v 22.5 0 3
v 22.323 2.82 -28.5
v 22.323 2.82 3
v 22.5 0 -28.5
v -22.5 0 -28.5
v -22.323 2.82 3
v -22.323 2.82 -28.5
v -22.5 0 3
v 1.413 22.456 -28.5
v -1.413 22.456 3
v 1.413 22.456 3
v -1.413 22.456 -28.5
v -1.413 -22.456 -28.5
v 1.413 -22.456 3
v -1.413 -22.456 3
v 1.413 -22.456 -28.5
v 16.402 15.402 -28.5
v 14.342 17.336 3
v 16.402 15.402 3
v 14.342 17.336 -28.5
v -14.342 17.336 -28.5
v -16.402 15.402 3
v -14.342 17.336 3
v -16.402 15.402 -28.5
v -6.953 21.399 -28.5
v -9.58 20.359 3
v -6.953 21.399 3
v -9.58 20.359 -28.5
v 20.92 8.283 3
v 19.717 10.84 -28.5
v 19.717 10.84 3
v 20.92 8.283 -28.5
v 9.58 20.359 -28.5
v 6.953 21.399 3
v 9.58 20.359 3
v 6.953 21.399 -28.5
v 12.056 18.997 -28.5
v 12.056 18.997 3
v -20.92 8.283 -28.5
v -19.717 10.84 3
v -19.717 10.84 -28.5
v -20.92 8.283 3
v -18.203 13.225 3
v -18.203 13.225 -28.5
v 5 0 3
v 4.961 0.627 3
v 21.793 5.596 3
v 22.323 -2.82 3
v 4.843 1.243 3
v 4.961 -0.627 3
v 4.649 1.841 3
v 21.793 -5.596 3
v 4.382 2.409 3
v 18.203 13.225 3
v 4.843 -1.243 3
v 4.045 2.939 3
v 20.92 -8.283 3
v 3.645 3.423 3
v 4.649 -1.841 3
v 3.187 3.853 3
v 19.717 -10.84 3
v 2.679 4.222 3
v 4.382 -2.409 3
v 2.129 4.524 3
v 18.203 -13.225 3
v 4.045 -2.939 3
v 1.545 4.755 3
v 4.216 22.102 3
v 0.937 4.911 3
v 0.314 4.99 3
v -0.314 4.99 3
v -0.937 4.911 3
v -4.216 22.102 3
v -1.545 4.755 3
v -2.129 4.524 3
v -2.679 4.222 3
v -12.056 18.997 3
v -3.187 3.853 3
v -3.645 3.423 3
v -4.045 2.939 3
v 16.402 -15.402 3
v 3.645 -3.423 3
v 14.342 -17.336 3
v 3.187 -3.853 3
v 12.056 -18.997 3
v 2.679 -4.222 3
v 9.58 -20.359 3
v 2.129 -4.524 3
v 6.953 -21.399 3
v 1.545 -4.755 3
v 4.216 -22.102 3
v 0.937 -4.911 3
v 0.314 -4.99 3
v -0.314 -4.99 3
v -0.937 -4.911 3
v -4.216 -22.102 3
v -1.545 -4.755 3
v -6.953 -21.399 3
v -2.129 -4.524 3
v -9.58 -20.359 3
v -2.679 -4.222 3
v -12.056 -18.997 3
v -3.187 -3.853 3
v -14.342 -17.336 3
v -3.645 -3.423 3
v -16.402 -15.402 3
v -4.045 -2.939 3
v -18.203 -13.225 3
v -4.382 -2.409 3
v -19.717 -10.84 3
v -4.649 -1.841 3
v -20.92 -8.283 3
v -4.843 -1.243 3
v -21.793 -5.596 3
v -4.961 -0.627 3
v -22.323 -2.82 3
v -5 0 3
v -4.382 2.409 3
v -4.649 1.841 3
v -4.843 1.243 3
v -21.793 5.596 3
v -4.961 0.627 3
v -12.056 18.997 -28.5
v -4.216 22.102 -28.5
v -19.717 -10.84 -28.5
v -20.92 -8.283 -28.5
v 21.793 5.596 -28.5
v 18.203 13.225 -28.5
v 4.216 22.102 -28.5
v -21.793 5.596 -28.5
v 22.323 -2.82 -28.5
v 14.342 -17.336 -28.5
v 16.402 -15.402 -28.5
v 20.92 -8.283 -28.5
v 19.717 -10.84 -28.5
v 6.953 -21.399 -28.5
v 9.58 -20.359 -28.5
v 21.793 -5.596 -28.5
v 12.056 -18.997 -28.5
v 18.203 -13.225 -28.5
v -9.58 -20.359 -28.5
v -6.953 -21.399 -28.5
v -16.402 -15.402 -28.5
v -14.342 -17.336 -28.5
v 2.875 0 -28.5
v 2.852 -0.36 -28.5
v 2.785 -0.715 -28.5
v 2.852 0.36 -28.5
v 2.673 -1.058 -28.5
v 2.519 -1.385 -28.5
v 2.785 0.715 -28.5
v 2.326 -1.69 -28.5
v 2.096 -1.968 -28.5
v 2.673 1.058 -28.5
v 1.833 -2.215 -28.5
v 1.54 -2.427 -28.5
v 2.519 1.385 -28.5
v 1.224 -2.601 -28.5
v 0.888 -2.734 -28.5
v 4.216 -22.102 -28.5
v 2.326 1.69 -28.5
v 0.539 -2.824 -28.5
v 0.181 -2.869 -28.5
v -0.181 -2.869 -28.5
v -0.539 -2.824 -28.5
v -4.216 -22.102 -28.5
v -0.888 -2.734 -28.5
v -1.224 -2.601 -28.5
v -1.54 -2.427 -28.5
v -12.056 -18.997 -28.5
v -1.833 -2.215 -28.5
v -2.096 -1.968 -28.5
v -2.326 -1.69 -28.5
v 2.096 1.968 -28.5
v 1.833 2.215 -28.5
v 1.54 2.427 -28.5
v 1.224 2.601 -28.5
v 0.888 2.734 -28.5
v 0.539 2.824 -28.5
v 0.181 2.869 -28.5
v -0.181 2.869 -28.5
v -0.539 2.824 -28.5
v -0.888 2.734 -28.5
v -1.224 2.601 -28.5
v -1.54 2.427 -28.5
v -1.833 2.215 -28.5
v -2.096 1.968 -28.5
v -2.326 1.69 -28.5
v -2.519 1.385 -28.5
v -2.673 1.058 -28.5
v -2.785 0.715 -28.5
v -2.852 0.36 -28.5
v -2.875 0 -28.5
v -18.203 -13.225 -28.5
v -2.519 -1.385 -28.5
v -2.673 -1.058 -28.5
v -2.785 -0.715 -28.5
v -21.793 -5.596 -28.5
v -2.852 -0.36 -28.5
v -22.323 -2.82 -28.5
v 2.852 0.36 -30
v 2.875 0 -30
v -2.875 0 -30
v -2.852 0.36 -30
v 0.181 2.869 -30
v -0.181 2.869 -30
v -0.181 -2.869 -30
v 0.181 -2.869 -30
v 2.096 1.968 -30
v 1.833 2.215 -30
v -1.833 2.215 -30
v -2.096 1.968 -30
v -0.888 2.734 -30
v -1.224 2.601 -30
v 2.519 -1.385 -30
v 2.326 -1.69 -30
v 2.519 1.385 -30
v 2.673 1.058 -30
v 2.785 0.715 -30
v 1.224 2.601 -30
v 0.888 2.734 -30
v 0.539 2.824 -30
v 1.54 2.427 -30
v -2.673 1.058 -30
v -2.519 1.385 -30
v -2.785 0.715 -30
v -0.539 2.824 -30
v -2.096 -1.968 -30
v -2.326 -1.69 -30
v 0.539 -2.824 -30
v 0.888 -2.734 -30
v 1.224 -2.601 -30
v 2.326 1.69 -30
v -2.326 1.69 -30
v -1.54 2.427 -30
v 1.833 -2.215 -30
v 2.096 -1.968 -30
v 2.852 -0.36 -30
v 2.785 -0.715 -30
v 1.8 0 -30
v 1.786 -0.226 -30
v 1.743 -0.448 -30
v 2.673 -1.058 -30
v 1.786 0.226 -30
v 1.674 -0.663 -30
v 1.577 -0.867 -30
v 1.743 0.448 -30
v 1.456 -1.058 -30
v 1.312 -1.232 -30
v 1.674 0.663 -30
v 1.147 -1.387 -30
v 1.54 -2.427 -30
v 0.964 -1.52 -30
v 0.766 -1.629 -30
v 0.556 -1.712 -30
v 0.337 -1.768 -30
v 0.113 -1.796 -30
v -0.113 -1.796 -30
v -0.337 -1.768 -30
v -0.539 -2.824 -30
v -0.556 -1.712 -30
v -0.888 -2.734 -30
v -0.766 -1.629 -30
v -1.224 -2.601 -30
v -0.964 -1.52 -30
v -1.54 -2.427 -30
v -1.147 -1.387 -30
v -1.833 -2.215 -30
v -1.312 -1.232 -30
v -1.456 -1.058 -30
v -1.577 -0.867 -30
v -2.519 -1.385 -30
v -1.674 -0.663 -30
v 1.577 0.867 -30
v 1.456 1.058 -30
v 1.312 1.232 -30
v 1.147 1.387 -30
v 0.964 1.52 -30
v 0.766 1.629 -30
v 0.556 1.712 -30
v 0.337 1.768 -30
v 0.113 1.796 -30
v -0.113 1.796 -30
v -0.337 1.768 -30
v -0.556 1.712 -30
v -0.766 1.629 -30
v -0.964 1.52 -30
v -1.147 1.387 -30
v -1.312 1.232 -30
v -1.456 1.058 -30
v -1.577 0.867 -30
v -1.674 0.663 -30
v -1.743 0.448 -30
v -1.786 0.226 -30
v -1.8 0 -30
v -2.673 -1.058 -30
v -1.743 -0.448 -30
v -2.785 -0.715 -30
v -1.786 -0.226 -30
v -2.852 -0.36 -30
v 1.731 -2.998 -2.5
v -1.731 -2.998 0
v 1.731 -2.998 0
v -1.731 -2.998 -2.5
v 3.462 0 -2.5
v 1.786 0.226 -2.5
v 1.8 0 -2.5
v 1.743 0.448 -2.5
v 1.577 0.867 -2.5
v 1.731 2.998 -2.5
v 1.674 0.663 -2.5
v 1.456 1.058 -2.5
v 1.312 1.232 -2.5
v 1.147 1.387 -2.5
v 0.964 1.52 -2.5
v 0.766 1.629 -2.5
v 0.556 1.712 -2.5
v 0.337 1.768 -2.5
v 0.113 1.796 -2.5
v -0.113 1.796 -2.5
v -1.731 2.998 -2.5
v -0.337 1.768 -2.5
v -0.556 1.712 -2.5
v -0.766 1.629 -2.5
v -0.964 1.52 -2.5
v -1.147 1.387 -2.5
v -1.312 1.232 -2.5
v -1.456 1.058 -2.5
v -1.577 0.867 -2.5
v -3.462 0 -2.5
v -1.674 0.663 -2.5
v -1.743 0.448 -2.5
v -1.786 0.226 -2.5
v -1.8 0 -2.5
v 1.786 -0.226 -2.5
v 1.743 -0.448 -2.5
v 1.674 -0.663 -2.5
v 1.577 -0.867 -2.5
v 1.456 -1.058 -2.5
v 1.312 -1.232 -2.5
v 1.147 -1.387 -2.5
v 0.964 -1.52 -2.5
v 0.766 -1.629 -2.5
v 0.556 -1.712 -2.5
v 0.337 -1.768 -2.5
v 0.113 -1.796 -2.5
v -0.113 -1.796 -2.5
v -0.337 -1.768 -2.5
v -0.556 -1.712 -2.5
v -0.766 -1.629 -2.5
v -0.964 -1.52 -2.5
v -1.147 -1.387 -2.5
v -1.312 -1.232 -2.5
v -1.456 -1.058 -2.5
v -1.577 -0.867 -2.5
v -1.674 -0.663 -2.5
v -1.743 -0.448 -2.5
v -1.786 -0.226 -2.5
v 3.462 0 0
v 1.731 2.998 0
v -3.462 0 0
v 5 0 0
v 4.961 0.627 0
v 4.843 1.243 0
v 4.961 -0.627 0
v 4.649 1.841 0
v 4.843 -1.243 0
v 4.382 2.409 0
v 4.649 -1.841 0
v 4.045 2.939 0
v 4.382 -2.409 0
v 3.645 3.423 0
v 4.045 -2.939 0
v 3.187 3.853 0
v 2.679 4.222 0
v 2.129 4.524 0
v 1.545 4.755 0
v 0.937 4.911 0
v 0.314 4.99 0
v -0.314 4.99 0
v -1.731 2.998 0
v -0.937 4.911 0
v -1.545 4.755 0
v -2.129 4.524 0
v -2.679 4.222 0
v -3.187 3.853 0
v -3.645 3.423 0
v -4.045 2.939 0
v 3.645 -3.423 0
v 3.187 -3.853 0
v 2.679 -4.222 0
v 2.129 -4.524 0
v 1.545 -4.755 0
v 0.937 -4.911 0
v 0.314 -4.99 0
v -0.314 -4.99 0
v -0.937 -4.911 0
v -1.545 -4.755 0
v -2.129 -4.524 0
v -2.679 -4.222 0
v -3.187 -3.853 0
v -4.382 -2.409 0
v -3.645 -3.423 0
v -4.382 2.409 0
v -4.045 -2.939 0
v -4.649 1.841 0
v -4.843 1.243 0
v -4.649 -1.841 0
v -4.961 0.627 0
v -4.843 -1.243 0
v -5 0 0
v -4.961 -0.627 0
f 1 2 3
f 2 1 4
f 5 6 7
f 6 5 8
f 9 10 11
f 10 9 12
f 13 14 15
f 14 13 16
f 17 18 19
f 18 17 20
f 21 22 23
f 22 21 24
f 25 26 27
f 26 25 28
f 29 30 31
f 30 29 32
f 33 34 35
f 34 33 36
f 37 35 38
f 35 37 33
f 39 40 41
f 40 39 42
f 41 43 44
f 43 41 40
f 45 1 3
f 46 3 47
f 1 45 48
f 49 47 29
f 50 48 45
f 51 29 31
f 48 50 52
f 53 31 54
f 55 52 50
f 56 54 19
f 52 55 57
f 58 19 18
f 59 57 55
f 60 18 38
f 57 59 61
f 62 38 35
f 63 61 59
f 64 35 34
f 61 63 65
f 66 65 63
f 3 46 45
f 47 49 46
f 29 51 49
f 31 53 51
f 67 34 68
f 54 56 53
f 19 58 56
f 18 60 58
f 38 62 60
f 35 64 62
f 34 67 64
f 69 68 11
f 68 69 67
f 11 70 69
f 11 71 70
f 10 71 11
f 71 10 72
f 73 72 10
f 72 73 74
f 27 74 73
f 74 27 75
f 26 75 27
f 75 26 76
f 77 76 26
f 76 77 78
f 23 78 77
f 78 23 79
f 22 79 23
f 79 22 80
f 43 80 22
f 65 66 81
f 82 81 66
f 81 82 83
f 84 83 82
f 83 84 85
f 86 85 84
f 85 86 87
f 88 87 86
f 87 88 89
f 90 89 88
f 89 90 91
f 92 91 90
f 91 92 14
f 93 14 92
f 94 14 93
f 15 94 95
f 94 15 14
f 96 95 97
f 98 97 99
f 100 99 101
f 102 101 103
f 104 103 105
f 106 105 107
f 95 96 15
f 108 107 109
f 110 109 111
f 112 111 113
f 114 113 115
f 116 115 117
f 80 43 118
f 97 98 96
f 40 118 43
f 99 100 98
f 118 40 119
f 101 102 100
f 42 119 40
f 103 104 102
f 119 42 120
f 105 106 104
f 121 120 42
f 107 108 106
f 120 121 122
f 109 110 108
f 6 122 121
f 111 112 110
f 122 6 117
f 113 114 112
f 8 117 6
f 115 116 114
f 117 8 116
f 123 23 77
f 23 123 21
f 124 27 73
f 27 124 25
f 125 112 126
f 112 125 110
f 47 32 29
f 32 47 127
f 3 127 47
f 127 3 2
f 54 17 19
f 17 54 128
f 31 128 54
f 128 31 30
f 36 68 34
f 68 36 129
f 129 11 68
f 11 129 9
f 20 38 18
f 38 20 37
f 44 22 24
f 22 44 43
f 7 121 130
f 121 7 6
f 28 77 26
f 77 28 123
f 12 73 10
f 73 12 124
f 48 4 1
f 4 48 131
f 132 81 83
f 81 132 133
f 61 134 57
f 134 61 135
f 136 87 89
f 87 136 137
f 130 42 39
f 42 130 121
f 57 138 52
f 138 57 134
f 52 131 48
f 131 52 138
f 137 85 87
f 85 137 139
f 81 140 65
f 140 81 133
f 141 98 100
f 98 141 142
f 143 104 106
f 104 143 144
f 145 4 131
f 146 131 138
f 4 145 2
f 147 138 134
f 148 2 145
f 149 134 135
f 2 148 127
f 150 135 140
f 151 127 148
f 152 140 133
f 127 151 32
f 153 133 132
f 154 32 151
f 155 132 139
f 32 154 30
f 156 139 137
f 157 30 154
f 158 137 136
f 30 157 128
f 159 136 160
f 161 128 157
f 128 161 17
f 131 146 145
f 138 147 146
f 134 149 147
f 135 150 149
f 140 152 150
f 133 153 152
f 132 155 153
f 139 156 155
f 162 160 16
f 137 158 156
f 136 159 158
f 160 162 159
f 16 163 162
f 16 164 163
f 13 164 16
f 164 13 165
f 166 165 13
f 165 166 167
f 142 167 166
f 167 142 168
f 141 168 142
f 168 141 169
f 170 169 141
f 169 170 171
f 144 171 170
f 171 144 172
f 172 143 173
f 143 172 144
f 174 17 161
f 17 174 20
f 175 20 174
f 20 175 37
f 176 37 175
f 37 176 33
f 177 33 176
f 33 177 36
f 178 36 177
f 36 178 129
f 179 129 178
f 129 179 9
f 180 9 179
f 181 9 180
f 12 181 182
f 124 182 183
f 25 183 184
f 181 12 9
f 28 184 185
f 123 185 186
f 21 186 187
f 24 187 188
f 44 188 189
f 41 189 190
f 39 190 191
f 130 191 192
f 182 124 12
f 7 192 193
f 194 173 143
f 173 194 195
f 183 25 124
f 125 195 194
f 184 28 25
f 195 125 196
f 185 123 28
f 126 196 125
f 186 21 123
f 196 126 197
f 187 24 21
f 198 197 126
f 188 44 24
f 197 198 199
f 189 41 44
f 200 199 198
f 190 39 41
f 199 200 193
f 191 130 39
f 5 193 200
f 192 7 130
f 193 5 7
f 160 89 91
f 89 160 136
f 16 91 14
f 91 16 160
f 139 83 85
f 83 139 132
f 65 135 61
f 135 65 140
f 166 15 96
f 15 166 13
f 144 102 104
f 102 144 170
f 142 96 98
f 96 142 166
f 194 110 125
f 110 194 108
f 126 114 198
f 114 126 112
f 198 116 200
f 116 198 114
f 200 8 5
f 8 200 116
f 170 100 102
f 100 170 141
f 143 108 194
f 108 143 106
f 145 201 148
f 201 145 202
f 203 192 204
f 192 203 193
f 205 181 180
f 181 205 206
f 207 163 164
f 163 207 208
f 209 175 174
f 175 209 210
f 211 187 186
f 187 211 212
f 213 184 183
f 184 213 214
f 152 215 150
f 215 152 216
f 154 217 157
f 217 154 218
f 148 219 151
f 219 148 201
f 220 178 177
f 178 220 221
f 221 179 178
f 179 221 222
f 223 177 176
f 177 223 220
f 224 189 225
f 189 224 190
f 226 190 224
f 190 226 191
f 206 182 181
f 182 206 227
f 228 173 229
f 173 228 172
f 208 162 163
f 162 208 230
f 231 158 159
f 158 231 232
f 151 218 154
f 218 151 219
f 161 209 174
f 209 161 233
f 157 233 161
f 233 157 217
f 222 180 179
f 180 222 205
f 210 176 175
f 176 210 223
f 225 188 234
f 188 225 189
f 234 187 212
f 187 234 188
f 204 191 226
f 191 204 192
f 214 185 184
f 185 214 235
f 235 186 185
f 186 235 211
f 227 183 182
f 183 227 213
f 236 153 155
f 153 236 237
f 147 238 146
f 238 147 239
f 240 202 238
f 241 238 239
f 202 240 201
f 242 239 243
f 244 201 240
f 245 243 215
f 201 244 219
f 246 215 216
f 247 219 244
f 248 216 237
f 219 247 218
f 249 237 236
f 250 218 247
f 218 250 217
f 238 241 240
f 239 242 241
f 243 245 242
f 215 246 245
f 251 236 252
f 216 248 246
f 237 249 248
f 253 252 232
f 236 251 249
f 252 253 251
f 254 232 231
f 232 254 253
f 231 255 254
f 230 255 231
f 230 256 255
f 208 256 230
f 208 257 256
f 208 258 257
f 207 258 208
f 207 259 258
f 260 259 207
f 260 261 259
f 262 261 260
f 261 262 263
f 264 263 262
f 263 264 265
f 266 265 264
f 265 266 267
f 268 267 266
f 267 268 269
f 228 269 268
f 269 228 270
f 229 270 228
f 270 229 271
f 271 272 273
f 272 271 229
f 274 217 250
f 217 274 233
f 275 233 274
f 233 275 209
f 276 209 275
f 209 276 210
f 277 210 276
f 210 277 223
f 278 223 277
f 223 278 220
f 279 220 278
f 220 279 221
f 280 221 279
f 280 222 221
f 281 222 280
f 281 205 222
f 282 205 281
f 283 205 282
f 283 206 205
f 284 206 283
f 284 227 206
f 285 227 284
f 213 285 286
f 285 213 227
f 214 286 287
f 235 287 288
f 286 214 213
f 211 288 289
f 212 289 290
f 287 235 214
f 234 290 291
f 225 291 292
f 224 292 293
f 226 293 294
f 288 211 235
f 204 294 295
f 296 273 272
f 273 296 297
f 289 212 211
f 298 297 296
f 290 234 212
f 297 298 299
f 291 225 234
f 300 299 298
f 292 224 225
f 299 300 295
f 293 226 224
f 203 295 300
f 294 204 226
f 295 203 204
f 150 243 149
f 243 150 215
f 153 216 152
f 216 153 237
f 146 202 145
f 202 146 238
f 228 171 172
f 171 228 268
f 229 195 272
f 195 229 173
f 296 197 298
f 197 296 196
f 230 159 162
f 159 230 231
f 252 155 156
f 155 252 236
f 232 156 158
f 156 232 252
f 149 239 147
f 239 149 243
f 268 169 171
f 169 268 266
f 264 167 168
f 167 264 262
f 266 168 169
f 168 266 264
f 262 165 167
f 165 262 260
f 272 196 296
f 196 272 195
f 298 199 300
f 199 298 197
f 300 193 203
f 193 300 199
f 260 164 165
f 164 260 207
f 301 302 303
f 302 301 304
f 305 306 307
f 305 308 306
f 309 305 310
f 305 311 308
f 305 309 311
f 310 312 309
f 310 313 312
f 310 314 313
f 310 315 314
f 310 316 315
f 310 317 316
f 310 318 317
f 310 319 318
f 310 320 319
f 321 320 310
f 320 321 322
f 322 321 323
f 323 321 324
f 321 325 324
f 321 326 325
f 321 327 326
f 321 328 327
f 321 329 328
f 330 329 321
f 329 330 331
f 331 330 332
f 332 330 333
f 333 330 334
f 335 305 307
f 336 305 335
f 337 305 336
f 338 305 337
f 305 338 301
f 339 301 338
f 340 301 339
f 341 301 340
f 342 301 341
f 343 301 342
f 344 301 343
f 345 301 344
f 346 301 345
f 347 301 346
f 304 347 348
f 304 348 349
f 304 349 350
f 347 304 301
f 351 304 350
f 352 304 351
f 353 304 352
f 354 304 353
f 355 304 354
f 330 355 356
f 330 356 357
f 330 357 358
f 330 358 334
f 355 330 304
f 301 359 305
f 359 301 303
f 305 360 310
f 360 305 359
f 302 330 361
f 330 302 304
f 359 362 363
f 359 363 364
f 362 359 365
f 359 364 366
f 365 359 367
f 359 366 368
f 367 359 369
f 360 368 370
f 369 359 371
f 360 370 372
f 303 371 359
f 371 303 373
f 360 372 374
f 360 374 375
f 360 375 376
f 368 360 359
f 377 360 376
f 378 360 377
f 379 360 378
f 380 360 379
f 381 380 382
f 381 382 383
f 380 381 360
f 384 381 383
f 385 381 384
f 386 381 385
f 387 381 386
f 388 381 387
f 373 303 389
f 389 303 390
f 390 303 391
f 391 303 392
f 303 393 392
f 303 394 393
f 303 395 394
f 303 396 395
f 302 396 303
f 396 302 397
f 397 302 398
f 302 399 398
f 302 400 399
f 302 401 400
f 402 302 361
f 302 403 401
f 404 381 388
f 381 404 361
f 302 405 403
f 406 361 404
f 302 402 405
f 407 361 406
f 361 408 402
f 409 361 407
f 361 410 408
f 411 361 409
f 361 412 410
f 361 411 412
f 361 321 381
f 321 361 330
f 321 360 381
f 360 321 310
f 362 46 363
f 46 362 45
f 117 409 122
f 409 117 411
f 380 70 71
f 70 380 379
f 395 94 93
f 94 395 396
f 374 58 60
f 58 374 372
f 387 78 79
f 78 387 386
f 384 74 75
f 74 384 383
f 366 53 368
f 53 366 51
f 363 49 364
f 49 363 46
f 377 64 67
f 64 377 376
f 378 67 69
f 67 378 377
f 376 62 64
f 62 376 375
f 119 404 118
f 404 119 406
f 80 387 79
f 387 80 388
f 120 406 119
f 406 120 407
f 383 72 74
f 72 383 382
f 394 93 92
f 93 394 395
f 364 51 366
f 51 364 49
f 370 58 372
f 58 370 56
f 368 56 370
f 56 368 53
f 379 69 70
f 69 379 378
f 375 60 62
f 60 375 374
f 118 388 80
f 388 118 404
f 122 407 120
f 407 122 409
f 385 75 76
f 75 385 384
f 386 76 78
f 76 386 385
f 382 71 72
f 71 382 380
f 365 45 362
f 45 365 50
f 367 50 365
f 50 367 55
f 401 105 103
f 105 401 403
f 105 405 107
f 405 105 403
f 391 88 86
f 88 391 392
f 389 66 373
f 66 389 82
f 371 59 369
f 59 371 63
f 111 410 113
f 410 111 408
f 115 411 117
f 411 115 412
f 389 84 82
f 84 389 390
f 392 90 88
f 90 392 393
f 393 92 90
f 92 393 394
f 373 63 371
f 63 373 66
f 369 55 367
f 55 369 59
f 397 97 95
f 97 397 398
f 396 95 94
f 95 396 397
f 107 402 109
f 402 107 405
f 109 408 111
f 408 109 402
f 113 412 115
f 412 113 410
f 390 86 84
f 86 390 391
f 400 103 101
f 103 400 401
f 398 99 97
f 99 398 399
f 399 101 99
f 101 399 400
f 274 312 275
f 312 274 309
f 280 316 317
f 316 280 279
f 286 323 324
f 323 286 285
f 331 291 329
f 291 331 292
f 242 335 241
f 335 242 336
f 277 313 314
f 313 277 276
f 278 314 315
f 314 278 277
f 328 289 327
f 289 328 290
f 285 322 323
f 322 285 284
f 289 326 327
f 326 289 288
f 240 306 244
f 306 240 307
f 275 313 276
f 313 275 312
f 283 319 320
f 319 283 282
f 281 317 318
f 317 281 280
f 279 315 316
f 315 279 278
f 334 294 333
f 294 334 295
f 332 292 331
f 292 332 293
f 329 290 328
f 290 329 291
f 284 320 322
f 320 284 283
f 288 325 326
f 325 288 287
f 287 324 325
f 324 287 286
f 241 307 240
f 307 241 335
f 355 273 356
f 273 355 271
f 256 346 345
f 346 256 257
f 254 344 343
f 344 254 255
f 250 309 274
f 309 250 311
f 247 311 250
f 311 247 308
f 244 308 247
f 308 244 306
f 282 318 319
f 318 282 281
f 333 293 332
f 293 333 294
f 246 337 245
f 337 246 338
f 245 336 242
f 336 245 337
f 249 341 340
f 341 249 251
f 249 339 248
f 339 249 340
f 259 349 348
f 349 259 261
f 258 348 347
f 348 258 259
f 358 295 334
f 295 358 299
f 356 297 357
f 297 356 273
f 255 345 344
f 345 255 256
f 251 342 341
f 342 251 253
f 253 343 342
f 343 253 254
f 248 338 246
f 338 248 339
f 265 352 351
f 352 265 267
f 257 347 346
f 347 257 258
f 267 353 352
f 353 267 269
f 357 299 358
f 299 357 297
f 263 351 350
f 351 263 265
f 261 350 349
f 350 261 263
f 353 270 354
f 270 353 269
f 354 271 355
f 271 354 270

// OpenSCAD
$fn = 50;


difference() {
	union() {
		translate(v = [0, 0, -28.5000000000]) {
			cylinder(h = 31.5000000000, r = 22.5000000000);
		}
		#translate(v = [0, 0, -30.0000000000]) {
			cylinder(h = 30, r = 2.8750000000);
		}
	}
	union() {
		translate(v = [0, 0, 0]) {
			rotate(a = [0, 0, 0]) {
				difference() {
					union() {
						translate(v = [0, 0, -2.5000000000]) {
							linear_extrude(height = 2.5000000000) {
								polygon(points = [[3.4620000000, 0.0000000000], [1.7310000000, 2.9981799479], [-1.7310000000, 2.9981799479], [-3.4620000000, 0.0000000000], [-1.7310000000, -2.9981799479], [1.7310000000, -2.9981799479]]);
							}
						}
					}
					union();
				}
			}
		}
		#cylinder(h = 3, r = 5.0000000000);
		#translate(v = [0, 0, -100.0000000000]) {
			cylinder(h = 200, r = 1.8000000000);
		}
	}
}
